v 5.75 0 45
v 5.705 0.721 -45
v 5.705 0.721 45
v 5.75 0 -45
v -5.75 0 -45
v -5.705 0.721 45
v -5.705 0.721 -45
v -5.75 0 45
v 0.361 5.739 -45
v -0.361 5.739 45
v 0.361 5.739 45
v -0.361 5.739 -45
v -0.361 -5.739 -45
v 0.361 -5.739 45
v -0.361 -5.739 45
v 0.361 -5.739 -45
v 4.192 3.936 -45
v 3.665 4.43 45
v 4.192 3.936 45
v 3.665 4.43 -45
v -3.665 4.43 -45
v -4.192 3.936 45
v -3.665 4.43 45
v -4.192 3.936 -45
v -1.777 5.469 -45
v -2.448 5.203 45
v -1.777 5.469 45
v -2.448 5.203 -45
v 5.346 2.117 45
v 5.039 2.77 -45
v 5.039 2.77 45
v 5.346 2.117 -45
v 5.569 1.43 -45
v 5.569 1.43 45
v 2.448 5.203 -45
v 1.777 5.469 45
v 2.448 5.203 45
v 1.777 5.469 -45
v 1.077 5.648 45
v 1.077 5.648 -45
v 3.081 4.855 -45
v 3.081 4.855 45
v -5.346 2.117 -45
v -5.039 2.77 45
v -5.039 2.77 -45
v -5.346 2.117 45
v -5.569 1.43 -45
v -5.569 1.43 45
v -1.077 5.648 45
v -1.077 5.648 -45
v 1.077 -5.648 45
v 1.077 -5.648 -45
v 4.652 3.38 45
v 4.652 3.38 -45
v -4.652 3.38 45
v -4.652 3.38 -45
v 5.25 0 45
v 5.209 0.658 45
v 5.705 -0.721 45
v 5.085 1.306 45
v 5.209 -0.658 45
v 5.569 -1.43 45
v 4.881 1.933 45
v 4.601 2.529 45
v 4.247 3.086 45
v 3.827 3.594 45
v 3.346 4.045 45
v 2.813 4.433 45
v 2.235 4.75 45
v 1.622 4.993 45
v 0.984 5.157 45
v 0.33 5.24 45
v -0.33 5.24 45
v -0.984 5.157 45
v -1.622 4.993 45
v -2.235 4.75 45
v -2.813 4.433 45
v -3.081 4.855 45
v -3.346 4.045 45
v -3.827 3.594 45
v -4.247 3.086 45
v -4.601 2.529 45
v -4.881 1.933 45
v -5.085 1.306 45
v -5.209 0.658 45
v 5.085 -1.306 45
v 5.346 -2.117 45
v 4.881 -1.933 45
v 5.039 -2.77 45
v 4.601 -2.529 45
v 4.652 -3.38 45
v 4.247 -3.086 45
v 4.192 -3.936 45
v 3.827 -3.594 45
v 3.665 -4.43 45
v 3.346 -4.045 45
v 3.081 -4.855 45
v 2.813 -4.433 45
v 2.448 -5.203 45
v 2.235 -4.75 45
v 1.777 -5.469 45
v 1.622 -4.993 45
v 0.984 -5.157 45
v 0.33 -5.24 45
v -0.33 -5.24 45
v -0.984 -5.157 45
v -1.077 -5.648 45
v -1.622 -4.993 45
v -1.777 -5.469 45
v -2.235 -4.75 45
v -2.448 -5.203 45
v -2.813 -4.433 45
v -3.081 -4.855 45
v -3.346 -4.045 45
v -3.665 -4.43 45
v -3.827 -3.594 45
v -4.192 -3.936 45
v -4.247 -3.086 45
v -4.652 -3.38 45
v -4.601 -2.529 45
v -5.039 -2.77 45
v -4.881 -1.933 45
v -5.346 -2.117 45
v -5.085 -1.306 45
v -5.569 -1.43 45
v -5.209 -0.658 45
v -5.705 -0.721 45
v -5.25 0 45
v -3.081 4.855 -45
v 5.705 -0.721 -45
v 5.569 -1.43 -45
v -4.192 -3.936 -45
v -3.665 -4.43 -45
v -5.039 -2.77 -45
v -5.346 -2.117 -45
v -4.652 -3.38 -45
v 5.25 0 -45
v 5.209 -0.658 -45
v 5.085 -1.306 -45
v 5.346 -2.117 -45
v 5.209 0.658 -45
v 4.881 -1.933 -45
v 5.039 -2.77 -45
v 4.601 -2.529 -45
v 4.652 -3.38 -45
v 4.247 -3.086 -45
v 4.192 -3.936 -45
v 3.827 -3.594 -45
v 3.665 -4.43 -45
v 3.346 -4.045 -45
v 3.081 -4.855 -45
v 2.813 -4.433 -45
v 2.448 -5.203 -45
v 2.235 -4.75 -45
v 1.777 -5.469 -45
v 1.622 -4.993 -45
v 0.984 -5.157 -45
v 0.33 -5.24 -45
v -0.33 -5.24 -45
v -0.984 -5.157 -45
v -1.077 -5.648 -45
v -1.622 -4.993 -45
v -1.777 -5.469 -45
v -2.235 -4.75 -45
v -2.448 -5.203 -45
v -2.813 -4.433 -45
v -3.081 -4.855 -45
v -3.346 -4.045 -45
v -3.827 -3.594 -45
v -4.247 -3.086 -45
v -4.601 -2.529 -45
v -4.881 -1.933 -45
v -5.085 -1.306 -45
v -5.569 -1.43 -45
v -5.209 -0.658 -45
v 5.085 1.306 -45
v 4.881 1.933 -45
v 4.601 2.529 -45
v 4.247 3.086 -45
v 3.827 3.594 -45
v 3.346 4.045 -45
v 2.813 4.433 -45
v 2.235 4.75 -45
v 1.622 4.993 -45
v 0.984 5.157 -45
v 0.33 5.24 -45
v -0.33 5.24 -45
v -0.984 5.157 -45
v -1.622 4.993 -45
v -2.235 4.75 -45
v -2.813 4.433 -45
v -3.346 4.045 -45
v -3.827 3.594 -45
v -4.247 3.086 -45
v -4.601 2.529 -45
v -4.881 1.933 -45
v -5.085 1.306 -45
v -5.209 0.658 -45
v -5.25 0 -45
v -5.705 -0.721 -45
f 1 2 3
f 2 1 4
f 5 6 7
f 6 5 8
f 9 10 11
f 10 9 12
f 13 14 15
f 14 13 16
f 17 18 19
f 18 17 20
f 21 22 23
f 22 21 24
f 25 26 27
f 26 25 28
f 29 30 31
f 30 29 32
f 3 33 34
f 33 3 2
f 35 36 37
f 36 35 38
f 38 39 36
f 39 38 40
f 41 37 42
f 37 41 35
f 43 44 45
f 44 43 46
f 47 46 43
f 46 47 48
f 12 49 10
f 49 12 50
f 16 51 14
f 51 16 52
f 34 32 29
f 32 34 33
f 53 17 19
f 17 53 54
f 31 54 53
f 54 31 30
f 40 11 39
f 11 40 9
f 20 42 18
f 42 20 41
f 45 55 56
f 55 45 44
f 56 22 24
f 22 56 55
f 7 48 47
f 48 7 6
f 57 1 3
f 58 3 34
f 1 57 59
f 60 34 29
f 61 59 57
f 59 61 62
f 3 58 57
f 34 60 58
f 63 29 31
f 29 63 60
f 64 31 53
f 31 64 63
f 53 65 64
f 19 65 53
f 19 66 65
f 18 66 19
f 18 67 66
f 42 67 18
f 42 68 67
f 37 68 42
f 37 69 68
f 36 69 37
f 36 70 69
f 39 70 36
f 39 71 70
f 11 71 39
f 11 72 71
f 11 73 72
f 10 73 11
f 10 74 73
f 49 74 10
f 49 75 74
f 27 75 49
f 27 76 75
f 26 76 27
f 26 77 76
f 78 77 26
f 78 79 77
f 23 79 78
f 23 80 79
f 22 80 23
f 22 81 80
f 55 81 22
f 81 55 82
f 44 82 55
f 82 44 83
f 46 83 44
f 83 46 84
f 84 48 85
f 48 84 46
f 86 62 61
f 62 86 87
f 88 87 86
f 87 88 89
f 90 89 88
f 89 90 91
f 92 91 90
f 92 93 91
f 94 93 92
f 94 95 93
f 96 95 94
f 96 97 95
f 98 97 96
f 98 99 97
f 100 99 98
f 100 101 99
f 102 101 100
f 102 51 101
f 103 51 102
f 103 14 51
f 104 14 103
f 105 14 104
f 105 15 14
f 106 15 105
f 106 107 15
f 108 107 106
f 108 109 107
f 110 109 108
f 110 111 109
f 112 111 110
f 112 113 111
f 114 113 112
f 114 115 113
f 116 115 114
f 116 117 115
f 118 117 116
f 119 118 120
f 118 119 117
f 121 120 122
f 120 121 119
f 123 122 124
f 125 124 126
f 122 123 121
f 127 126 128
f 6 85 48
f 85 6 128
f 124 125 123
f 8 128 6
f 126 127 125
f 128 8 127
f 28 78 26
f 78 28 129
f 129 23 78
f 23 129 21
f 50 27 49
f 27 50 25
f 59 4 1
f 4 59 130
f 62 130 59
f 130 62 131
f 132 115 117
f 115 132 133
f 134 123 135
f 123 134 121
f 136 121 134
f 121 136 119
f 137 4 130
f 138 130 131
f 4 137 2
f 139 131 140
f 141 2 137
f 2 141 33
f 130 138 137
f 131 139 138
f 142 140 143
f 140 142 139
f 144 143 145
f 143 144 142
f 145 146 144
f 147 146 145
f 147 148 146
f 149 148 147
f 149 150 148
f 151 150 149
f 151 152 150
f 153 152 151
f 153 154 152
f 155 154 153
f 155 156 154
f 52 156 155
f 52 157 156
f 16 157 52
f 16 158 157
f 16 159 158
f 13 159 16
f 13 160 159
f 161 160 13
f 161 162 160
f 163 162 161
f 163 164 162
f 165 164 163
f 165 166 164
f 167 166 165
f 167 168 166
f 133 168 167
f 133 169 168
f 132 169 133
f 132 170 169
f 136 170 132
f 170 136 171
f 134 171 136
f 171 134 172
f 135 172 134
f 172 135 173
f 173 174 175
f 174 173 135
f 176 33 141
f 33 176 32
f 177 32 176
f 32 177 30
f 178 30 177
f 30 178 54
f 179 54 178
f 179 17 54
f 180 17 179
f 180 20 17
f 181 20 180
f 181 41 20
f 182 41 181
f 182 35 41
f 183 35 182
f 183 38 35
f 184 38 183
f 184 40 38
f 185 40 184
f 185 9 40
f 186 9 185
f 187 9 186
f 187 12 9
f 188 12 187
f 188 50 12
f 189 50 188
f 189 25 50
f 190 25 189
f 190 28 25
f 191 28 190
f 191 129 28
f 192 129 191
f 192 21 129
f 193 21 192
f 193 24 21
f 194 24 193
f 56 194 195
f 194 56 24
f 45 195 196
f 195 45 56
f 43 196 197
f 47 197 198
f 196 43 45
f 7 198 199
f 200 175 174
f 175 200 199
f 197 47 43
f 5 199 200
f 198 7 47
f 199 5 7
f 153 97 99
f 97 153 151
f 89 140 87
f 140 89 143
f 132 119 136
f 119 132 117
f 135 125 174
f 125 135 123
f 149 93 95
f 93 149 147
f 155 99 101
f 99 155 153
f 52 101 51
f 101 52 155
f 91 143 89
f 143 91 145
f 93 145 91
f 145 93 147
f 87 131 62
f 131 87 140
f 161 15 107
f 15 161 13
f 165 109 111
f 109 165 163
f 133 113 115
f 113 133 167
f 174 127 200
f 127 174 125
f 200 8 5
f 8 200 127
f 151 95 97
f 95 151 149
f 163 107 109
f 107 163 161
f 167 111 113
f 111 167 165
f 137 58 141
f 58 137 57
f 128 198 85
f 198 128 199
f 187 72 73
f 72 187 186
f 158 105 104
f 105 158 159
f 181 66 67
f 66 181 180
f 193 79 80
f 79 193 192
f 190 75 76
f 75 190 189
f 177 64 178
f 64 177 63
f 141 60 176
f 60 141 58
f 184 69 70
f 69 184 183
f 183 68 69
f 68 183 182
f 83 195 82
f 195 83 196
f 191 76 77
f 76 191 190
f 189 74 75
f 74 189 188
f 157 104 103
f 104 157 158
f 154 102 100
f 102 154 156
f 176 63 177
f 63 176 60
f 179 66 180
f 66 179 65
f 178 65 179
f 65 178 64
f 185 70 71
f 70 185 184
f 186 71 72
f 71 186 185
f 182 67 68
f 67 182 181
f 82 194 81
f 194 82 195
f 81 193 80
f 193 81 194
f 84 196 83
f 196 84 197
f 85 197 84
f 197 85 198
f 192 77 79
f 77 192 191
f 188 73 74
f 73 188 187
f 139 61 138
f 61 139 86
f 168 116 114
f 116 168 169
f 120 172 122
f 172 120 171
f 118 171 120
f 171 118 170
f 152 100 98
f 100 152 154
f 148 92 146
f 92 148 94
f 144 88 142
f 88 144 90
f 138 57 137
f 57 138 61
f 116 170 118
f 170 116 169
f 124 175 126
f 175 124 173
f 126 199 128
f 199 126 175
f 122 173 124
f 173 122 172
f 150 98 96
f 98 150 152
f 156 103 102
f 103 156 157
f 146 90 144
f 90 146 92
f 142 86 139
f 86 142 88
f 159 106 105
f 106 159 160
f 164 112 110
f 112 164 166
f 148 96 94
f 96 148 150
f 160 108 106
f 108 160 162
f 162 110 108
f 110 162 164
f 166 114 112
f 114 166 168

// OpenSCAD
$fn = 50;


difference() {
	union() {
		translate(v = [0, 0, -45.0000000000]) {
			cylinder(h = 90, r = 5.7500000000);
		}
	}
	union() {
		translate(v = [0, 0, -100.0000000000]) {
			cylinder(h = 200, r = 5.2500000000);
		}
	}
}
